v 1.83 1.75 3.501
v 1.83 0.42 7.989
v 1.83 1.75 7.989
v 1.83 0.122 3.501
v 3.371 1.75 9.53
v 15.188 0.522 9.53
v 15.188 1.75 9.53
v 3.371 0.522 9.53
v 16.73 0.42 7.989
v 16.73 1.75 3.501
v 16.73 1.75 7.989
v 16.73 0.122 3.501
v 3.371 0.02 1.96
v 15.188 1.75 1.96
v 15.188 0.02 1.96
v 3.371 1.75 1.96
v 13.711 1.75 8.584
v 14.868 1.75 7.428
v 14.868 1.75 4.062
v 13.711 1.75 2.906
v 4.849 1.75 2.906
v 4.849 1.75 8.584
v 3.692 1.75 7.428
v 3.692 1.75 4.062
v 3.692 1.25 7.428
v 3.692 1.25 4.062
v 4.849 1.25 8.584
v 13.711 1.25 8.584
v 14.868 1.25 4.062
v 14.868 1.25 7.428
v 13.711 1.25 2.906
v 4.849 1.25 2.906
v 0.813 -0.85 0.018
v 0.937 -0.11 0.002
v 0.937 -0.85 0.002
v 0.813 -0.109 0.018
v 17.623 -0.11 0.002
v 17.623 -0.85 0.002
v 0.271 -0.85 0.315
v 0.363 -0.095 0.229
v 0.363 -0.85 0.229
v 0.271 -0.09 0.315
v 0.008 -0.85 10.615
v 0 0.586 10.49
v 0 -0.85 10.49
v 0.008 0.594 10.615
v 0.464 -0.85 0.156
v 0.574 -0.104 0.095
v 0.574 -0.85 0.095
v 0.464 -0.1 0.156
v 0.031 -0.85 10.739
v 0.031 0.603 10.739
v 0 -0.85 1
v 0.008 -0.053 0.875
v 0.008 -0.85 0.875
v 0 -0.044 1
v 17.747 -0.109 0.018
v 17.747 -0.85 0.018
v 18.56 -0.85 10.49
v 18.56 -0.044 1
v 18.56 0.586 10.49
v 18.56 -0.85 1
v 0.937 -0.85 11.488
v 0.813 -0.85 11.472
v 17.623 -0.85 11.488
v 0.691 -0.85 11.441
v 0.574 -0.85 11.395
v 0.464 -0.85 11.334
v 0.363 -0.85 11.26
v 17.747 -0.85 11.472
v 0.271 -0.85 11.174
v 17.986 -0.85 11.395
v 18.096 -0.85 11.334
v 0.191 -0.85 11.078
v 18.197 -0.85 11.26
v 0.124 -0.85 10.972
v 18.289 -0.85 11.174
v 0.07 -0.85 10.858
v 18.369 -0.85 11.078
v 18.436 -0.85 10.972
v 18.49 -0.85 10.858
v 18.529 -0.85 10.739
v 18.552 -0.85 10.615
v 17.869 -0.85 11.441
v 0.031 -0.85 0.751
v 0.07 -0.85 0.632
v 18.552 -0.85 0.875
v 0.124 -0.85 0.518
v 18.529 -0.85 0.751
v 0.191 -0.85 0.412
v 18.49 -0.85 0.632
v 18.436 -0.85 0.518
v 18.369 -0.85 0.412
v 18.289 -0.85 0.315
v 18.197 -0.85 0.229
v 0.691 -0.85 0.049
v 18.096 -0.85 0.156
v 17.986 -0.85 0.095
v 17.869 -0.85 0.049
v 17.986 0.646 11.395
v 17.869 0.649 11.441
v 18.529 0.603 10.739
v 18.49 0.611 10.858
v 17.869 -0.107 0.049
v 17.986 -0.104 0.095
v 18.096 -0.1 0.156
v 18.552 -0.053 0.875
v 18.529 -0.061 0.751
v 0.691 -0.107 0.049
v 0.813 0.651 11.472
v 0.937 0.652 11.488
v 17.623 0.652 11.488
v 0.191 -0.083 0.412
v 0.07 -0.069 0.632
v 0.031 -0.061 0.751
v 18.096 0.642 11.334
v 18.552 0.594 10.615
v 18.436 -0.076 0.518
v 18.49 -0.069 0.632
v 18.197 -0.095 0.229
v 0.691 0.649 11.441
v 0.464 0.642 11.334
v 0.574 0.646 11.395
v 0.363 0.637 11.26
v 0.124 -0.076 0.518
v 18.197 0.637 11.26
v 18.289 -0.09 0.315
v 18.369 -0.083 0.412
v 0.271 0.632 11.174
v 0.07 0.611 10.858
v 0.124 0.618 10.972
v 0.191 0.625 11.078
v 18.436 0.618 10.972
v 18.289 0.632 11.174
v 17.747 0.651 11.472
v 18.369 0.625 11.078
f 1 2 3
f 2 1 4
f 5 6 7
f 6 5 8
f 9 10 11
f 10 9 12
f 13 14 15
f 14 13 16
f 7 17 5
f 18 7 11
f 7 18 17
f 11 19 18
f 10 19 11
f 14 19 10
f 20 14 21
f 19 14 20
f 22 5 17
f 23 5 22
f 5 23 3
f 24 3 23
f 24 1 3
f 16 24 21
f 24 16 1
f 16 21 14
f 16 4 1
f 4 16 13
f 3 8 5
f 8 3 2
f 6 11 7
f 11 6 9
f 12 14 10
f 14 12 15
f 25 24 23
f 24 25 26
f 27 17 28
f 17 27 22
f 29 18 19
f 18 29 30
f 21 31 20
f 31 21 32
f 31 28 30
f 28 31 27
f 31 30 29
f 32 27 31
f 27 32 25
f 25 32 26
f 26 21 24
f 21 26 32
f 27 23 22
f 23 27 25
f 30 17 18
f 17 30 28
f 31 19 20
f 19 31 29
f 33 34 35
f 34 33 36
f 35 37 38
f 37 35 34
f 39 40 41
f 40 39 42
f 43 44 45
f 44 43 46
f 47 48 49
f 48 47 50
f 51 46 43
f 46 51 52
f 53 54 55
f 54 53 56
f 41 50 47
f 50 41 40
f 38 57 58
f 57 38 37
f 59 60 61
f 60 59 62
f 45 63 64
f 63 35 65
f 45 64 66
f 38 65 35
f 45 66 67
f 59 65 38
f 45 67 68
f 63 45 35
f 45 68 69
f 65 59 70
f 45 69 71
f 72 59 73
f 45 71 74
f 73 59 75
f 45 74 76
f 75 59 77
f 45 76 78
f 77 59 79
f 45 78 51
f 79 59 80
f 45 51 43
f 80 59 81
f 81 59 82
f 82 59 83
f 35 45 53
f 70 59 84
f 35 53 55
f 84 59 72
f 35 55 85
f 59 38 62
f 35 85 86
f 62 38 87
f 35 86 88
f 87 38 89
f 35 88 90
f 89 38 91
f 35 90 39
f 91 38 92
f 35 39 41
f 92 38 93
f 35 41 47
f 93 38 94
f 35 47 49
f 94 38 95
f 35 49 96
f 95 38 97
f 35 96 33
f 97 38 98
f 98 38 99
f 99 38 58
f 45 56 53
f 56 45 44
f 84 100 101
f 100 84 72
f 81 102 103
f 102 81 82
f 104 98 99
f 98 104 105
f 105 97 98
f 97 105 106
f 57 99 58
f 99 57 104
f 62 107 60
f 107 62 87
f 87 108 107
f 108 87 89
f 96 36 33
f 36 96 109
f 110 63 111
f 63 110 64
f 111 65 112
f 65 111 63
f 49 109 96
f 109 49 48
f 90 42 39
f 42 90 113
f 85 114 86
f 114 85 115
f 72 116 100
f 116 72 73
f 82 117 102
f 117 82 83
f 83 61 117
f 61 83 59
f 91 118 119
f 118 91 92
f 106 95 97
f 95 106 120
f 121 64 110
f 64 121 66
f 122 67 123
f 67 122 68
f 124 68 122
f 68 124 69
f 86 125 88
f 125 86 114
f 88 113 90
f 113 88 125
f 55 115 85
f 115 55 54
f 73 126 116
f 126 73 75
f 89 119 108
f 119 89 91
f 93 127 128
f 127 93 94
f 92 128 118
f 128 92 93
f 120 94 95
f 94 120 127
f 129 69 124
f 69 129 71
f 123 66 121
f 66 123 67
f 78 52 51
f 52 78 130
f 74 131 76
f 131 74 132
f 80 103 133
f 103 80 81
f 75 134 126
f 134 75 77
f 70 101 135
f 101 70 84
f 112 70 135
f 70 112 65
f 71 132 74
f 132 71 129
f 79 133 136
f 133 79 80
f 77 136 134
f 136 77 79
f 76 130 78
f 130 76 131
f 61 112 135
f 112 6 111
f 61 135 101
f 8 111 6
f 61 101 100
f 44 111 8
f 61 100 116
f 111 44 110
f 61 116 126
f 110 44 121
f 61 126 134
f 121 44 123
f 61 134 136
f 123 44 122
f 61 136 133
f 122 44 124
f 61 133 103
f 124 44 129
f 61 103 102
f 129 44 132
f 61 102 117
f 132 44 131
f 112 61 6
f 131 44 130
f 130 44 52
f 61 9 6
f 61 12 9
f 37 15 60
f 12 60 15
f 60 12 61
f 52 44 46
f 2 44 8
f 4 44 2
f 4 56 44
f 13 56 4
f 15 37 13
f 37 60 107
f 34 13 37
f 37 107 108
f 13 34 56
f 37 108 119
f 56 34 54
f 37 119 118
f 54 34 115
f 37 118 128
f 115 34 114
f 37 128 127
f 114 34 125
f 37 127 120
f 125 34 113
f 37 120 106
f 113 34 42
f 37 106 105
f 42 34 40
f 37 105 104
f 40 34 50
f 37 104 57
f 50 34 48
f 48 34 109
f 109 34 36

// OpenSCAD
outerWidth = 18.56;
outerHeight = 11.49;

innerWidth = 14.90;
innerHeight = 7.57;

radius = 1;

plugDepth = 1.75; 

difference() {
  $fn=50;
  translate([radius,0,radius])
  minkowski() {
   cube([outerWidth-(radius * 2),1.70, outerHeight- (radius * 2)], 0);

   rotate([90,0,0])
   cylinder(r=radius,h=1.70, center=true);
  }

  translate([(outerWidth-1)/2,2.10,outerHeight/2])
  rotate([-3.8,0,0])
  cube([outerWidth+2,3.65, outerHeight+10], center=true);
}


difference() {
  octogon();
    
  translate([outerWidth/8,1.25,outerHeight/8])
  scale(0.75)
  octogon();
}


module octogon(){
  widthDiff = (outerWidth - innerWidth)/2;
  heightDiff = (outerHeight - innerHeight)/2;
  
  difference() {
    translate([widthDiff,0,heightDiff])
    cube([innerWidth,plugDepth, innerHeight], 0);

    len = 2.18;

    translate([widthDiff,0,heightDiff])
    rotate([0,45,0])
    cube([len, 25, len], center=true);

    translate([widthDiff,0,heightDiff+innerHeight])
    rotate([0,45,0])
    cube([len, 25, len], center=true);

    translate([widthDiff+innerWidth,0,heightDiff+innerHeight])
    rotate([0,45,0])
    cube([len, 25, len], center=true);

    translate([widthDiff+innerWidth,0,heightDiff])
    rotate([0,45,0])
    cube([len, 25, len], center=true);
  }
}
